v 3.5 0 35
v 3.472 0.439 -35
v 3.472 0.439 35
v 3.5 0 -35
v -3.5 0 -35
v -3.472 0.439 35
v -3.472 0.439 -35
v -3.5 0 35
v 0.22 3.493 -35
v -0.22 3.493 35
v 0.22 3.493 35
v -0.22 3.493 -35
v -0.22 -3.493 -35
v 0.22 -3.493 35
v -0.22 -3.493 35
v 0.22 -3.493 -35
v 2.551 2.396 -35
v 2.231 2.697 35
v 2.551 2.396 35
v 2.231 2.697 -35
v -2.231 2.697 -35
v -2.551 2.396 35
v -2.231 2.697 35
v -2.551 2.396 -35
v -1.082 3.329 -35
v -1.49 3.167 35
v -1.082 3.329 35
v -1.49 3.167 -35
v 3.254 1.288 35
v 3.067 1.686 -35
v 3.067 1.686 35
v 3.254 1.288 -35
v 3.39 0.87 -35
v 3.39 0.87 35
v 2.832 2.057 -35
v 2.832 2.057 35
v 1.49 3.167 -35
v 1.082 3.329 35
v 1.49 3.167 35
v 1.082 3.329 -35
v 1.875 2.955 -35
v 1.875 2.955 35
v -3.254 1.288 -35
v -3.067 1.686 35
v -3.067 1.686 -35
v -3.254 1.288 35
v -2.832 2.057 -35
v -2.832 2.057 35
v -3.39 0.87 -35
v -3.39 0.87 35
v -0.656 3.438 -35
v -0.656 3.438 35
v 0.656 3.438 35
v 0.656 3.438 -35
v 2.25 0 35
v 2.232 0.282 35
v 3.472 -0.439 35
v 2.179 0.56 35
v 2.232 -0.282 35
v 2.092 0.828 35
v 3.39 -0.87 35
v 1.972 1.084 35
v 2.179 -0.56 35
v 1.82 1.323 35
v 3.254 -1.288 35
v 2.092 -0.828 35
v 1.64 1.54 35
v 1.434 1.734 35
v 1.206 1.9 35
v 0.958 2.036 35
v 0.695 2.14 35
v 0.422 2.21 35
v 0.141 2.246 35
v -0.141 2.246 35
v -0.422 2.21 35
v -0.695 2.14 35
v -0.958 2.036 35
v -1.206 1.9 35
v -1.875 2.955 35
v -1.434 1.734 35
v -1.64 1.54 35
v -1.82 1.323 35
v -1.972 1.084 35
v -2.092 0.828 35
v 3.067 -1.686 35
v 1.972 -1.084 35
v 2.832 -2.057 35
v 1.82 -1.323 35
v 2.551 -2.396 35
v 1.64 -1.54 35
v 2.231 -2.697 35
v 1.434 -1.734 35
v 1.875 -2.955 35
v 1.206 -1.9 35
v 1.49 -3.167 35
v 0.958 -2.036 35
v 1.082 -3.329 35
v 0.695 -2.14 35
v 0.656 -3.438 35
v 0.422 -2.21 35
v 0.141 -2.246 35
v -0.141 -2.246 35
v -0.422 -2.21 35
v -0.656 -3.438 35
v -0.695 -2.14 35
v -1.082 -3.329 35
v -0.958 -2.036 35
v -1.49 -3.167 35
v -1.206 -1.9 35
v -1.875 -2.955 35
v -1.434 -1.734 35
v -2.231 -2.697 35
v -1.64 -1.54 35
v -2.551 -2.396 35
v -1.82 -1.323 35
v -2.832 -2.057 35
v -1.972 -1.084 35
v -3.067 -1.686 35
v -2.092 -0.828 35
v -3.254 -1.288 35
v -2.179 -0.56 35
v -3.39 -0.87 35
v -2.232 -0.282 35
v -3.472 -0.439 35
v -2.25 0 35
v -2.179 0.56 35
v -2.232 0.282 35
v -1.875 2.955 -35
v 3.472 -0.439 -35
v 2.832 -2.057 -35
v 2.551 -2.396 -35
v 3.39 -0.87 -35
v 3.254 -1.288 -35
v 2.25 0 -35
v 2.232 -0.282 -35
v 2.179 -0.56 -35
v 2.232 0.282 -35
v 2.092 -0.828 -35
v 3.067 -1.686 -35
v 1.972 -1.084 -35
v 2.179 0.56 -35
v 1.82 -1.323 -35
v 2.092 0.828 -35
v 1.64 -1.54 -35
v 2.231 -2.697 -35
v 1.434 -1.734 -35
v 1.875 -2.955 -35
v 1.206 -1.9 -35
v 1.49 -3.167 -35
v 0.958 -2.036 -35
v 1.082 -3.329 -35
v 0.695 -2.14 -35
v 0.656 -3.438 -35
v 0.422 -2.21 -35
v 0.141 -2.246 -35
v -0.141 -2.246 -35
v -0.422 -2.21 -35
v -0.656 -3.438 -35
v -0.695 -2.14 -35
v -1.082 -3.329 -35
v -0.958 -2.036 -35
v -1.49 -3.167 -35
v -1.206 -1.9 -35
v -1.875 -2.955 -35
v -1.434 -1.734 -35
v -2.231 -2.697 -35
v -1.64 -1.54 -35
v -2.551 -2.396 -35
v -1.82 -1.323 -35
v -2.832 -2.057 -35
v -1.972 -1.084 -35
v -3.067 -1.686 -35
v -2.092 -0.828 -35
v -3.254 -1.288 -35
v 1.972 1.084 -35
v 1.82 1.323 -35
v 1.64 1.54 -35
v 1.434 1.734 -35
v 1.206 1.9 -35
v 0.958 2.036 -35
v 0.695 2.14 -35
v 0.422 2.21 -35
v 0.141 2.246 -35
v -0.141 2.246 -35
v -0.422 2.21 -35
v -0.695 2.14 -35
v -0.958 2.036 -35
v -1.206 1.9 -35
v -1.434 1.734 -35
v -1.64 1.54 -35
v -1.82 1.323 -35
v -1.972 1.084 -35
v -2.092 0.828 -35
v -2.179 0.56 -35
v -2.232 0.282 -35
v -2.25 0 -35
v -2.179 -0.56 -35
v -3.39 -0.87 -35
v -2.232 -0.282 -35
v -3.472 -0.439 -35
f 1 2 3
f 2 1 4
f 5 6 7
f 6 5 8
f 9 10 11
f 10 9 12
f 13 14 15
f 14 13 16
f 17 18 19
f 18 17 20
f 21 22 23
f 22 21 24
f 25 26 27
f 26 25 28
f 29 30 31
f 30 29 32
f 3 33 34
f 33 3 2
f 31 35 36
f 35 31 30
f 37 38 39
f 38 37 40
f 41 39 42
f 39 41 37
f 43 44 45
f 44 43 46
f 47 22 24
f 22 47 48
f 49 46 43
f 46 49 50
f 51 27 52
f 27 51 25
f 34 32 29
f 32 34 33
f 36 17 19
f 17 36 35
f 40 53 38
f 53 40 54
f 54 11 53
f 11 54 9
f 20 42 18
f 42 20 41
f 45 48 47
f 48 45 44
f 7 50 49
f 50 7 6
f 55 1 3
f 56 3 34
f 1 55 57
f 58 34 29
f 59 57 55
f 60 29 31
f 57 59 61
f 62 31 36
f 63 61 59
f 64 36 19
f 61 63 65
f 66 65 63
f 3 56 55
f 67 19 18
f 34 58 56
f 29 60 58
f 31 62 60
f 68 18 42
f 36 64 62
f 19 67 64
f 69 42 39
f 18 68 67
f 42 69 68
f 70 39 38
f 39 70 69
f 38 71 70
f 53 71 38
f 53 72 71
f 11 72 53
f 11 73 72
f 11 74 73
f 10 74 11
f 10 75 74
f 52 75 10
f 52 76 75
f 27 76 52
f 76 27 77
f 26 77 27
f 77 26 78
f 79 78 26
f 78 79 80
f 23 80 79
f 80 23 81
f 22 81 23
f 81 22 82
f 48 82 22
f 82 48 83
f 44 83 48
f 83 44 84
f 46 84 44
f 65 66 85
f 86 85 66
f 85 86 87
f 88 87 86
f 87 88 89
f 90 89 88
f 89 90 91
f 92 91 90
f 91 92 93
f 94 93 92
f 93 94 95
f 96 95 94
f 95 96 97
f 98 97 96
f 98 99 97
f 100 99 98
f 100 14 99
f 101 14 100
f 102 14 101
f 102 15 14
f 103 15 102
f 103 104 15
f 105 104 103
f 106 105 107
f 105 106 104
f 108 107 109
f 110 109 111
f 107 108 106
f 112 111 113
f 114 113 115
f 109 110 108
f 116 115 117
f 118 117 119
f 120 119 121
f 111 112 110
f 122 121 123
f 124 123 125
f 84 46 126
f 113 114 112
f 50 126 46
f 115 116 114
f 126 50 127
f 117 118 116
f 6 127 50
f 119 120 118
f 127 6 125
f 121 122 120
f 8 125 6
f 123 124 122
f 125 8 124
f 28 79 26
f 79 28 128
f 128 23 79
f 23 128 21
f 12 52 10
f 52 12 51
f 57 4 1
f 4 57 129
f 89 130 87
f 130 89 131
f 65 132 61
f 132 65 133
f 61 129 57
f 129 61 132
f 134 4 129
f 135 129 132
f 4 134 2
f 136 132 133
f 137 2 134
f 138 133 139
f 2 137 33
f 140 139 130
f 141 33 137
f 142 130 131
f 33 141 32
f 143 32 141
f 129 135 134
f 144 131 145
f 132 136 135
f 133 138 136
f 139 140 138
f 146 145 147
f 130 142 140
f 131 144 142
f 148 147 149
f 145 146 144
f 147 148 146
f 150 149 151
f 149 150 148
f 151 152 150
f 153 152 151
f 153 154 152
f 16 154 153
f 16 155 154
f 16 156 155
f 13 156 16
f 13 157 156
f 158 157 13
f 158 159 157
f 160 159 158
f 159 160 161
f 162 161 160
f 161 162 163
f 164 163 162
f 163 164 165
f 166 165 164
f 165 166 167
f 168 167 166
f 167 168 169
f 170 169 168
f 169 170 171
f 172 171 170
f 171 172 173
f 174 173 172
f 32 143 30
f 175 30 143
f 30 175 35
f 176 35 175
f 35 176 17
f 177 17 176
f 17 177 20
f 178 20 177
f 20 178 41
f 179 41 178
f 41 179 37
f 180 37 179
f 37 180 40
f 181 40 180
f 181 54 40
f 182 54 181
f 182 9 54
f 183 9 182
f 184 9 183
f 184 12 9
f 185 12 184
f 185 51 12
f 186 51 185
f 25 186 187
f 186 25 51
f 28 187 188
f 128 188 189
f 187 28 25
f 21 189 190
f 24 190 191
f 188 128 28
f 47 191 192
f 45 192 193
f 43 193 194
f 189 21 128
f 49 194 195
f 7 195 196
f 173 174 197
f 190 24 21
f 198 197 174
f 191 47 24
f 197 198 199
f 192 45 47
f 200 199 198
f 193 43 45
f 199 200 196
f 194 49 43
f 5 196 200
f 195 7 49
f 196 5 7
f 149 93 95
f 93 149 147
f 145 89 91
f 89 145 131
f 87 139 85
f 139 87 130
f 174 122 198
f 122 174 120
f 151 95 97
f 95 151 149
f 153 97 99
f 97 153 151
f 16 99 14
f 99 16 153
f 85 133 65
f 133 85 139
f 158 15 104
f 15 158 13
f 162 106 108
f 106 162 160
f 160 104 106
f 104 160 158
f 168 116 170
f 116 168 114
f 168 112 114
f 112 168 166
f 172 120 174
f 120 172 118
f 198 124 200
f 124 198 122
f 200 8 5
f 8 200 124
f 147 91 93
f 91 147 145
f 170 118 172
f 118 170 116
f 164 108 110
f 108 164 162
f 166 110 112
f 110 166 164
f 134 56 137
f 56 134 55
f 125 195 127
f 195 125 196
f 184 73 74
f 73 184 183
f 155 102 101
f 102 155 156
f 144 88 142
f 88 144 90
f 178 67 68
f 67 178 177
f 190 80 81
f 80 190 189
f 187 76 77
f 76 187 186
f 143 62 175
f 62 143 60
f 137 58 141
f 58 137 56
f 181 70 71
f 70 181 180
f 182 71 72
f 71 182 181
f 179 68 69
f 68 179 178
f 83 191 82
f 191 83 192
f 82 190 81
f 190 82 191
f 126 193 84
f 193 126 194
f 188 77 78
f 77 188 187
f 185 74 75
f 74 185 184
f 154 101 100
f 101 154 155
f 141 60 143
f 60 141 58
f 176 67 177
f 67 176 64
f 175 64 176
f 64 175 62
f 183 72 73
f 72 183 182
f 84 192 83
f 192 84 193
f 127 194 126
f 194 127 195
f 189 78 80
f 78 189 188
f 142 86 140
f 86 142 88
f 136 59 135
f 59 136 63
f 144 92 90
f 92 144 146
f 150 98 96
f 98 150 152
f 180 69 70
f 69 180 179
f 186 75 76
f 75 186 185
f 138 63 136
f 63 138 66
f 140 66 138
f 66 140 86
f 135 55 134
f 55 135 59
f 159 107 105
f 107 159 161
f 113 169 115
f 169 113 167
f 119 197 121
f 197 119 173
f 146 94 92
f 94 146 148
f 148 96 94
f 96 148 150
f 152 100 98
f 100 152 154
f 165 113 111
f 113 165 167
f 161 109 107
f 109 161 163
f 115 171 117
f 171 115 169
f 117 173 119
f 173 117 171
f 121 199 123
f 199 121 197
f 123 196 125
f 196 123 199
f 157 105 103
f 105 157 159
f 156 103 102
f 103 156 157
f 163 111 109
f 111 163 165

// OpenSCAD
$fn = 50;


difference() {
	union() {
		translate(v = [0, 0, -35.0000000000]) {
			cylinder(h = 70, r = 3.5000000000);
		}
	}
	union() {
		translate(v = [0, 0, -100.0000000000]) {
			cylinder(h = 200, r = 2.2500000000);
		}
	}
}
